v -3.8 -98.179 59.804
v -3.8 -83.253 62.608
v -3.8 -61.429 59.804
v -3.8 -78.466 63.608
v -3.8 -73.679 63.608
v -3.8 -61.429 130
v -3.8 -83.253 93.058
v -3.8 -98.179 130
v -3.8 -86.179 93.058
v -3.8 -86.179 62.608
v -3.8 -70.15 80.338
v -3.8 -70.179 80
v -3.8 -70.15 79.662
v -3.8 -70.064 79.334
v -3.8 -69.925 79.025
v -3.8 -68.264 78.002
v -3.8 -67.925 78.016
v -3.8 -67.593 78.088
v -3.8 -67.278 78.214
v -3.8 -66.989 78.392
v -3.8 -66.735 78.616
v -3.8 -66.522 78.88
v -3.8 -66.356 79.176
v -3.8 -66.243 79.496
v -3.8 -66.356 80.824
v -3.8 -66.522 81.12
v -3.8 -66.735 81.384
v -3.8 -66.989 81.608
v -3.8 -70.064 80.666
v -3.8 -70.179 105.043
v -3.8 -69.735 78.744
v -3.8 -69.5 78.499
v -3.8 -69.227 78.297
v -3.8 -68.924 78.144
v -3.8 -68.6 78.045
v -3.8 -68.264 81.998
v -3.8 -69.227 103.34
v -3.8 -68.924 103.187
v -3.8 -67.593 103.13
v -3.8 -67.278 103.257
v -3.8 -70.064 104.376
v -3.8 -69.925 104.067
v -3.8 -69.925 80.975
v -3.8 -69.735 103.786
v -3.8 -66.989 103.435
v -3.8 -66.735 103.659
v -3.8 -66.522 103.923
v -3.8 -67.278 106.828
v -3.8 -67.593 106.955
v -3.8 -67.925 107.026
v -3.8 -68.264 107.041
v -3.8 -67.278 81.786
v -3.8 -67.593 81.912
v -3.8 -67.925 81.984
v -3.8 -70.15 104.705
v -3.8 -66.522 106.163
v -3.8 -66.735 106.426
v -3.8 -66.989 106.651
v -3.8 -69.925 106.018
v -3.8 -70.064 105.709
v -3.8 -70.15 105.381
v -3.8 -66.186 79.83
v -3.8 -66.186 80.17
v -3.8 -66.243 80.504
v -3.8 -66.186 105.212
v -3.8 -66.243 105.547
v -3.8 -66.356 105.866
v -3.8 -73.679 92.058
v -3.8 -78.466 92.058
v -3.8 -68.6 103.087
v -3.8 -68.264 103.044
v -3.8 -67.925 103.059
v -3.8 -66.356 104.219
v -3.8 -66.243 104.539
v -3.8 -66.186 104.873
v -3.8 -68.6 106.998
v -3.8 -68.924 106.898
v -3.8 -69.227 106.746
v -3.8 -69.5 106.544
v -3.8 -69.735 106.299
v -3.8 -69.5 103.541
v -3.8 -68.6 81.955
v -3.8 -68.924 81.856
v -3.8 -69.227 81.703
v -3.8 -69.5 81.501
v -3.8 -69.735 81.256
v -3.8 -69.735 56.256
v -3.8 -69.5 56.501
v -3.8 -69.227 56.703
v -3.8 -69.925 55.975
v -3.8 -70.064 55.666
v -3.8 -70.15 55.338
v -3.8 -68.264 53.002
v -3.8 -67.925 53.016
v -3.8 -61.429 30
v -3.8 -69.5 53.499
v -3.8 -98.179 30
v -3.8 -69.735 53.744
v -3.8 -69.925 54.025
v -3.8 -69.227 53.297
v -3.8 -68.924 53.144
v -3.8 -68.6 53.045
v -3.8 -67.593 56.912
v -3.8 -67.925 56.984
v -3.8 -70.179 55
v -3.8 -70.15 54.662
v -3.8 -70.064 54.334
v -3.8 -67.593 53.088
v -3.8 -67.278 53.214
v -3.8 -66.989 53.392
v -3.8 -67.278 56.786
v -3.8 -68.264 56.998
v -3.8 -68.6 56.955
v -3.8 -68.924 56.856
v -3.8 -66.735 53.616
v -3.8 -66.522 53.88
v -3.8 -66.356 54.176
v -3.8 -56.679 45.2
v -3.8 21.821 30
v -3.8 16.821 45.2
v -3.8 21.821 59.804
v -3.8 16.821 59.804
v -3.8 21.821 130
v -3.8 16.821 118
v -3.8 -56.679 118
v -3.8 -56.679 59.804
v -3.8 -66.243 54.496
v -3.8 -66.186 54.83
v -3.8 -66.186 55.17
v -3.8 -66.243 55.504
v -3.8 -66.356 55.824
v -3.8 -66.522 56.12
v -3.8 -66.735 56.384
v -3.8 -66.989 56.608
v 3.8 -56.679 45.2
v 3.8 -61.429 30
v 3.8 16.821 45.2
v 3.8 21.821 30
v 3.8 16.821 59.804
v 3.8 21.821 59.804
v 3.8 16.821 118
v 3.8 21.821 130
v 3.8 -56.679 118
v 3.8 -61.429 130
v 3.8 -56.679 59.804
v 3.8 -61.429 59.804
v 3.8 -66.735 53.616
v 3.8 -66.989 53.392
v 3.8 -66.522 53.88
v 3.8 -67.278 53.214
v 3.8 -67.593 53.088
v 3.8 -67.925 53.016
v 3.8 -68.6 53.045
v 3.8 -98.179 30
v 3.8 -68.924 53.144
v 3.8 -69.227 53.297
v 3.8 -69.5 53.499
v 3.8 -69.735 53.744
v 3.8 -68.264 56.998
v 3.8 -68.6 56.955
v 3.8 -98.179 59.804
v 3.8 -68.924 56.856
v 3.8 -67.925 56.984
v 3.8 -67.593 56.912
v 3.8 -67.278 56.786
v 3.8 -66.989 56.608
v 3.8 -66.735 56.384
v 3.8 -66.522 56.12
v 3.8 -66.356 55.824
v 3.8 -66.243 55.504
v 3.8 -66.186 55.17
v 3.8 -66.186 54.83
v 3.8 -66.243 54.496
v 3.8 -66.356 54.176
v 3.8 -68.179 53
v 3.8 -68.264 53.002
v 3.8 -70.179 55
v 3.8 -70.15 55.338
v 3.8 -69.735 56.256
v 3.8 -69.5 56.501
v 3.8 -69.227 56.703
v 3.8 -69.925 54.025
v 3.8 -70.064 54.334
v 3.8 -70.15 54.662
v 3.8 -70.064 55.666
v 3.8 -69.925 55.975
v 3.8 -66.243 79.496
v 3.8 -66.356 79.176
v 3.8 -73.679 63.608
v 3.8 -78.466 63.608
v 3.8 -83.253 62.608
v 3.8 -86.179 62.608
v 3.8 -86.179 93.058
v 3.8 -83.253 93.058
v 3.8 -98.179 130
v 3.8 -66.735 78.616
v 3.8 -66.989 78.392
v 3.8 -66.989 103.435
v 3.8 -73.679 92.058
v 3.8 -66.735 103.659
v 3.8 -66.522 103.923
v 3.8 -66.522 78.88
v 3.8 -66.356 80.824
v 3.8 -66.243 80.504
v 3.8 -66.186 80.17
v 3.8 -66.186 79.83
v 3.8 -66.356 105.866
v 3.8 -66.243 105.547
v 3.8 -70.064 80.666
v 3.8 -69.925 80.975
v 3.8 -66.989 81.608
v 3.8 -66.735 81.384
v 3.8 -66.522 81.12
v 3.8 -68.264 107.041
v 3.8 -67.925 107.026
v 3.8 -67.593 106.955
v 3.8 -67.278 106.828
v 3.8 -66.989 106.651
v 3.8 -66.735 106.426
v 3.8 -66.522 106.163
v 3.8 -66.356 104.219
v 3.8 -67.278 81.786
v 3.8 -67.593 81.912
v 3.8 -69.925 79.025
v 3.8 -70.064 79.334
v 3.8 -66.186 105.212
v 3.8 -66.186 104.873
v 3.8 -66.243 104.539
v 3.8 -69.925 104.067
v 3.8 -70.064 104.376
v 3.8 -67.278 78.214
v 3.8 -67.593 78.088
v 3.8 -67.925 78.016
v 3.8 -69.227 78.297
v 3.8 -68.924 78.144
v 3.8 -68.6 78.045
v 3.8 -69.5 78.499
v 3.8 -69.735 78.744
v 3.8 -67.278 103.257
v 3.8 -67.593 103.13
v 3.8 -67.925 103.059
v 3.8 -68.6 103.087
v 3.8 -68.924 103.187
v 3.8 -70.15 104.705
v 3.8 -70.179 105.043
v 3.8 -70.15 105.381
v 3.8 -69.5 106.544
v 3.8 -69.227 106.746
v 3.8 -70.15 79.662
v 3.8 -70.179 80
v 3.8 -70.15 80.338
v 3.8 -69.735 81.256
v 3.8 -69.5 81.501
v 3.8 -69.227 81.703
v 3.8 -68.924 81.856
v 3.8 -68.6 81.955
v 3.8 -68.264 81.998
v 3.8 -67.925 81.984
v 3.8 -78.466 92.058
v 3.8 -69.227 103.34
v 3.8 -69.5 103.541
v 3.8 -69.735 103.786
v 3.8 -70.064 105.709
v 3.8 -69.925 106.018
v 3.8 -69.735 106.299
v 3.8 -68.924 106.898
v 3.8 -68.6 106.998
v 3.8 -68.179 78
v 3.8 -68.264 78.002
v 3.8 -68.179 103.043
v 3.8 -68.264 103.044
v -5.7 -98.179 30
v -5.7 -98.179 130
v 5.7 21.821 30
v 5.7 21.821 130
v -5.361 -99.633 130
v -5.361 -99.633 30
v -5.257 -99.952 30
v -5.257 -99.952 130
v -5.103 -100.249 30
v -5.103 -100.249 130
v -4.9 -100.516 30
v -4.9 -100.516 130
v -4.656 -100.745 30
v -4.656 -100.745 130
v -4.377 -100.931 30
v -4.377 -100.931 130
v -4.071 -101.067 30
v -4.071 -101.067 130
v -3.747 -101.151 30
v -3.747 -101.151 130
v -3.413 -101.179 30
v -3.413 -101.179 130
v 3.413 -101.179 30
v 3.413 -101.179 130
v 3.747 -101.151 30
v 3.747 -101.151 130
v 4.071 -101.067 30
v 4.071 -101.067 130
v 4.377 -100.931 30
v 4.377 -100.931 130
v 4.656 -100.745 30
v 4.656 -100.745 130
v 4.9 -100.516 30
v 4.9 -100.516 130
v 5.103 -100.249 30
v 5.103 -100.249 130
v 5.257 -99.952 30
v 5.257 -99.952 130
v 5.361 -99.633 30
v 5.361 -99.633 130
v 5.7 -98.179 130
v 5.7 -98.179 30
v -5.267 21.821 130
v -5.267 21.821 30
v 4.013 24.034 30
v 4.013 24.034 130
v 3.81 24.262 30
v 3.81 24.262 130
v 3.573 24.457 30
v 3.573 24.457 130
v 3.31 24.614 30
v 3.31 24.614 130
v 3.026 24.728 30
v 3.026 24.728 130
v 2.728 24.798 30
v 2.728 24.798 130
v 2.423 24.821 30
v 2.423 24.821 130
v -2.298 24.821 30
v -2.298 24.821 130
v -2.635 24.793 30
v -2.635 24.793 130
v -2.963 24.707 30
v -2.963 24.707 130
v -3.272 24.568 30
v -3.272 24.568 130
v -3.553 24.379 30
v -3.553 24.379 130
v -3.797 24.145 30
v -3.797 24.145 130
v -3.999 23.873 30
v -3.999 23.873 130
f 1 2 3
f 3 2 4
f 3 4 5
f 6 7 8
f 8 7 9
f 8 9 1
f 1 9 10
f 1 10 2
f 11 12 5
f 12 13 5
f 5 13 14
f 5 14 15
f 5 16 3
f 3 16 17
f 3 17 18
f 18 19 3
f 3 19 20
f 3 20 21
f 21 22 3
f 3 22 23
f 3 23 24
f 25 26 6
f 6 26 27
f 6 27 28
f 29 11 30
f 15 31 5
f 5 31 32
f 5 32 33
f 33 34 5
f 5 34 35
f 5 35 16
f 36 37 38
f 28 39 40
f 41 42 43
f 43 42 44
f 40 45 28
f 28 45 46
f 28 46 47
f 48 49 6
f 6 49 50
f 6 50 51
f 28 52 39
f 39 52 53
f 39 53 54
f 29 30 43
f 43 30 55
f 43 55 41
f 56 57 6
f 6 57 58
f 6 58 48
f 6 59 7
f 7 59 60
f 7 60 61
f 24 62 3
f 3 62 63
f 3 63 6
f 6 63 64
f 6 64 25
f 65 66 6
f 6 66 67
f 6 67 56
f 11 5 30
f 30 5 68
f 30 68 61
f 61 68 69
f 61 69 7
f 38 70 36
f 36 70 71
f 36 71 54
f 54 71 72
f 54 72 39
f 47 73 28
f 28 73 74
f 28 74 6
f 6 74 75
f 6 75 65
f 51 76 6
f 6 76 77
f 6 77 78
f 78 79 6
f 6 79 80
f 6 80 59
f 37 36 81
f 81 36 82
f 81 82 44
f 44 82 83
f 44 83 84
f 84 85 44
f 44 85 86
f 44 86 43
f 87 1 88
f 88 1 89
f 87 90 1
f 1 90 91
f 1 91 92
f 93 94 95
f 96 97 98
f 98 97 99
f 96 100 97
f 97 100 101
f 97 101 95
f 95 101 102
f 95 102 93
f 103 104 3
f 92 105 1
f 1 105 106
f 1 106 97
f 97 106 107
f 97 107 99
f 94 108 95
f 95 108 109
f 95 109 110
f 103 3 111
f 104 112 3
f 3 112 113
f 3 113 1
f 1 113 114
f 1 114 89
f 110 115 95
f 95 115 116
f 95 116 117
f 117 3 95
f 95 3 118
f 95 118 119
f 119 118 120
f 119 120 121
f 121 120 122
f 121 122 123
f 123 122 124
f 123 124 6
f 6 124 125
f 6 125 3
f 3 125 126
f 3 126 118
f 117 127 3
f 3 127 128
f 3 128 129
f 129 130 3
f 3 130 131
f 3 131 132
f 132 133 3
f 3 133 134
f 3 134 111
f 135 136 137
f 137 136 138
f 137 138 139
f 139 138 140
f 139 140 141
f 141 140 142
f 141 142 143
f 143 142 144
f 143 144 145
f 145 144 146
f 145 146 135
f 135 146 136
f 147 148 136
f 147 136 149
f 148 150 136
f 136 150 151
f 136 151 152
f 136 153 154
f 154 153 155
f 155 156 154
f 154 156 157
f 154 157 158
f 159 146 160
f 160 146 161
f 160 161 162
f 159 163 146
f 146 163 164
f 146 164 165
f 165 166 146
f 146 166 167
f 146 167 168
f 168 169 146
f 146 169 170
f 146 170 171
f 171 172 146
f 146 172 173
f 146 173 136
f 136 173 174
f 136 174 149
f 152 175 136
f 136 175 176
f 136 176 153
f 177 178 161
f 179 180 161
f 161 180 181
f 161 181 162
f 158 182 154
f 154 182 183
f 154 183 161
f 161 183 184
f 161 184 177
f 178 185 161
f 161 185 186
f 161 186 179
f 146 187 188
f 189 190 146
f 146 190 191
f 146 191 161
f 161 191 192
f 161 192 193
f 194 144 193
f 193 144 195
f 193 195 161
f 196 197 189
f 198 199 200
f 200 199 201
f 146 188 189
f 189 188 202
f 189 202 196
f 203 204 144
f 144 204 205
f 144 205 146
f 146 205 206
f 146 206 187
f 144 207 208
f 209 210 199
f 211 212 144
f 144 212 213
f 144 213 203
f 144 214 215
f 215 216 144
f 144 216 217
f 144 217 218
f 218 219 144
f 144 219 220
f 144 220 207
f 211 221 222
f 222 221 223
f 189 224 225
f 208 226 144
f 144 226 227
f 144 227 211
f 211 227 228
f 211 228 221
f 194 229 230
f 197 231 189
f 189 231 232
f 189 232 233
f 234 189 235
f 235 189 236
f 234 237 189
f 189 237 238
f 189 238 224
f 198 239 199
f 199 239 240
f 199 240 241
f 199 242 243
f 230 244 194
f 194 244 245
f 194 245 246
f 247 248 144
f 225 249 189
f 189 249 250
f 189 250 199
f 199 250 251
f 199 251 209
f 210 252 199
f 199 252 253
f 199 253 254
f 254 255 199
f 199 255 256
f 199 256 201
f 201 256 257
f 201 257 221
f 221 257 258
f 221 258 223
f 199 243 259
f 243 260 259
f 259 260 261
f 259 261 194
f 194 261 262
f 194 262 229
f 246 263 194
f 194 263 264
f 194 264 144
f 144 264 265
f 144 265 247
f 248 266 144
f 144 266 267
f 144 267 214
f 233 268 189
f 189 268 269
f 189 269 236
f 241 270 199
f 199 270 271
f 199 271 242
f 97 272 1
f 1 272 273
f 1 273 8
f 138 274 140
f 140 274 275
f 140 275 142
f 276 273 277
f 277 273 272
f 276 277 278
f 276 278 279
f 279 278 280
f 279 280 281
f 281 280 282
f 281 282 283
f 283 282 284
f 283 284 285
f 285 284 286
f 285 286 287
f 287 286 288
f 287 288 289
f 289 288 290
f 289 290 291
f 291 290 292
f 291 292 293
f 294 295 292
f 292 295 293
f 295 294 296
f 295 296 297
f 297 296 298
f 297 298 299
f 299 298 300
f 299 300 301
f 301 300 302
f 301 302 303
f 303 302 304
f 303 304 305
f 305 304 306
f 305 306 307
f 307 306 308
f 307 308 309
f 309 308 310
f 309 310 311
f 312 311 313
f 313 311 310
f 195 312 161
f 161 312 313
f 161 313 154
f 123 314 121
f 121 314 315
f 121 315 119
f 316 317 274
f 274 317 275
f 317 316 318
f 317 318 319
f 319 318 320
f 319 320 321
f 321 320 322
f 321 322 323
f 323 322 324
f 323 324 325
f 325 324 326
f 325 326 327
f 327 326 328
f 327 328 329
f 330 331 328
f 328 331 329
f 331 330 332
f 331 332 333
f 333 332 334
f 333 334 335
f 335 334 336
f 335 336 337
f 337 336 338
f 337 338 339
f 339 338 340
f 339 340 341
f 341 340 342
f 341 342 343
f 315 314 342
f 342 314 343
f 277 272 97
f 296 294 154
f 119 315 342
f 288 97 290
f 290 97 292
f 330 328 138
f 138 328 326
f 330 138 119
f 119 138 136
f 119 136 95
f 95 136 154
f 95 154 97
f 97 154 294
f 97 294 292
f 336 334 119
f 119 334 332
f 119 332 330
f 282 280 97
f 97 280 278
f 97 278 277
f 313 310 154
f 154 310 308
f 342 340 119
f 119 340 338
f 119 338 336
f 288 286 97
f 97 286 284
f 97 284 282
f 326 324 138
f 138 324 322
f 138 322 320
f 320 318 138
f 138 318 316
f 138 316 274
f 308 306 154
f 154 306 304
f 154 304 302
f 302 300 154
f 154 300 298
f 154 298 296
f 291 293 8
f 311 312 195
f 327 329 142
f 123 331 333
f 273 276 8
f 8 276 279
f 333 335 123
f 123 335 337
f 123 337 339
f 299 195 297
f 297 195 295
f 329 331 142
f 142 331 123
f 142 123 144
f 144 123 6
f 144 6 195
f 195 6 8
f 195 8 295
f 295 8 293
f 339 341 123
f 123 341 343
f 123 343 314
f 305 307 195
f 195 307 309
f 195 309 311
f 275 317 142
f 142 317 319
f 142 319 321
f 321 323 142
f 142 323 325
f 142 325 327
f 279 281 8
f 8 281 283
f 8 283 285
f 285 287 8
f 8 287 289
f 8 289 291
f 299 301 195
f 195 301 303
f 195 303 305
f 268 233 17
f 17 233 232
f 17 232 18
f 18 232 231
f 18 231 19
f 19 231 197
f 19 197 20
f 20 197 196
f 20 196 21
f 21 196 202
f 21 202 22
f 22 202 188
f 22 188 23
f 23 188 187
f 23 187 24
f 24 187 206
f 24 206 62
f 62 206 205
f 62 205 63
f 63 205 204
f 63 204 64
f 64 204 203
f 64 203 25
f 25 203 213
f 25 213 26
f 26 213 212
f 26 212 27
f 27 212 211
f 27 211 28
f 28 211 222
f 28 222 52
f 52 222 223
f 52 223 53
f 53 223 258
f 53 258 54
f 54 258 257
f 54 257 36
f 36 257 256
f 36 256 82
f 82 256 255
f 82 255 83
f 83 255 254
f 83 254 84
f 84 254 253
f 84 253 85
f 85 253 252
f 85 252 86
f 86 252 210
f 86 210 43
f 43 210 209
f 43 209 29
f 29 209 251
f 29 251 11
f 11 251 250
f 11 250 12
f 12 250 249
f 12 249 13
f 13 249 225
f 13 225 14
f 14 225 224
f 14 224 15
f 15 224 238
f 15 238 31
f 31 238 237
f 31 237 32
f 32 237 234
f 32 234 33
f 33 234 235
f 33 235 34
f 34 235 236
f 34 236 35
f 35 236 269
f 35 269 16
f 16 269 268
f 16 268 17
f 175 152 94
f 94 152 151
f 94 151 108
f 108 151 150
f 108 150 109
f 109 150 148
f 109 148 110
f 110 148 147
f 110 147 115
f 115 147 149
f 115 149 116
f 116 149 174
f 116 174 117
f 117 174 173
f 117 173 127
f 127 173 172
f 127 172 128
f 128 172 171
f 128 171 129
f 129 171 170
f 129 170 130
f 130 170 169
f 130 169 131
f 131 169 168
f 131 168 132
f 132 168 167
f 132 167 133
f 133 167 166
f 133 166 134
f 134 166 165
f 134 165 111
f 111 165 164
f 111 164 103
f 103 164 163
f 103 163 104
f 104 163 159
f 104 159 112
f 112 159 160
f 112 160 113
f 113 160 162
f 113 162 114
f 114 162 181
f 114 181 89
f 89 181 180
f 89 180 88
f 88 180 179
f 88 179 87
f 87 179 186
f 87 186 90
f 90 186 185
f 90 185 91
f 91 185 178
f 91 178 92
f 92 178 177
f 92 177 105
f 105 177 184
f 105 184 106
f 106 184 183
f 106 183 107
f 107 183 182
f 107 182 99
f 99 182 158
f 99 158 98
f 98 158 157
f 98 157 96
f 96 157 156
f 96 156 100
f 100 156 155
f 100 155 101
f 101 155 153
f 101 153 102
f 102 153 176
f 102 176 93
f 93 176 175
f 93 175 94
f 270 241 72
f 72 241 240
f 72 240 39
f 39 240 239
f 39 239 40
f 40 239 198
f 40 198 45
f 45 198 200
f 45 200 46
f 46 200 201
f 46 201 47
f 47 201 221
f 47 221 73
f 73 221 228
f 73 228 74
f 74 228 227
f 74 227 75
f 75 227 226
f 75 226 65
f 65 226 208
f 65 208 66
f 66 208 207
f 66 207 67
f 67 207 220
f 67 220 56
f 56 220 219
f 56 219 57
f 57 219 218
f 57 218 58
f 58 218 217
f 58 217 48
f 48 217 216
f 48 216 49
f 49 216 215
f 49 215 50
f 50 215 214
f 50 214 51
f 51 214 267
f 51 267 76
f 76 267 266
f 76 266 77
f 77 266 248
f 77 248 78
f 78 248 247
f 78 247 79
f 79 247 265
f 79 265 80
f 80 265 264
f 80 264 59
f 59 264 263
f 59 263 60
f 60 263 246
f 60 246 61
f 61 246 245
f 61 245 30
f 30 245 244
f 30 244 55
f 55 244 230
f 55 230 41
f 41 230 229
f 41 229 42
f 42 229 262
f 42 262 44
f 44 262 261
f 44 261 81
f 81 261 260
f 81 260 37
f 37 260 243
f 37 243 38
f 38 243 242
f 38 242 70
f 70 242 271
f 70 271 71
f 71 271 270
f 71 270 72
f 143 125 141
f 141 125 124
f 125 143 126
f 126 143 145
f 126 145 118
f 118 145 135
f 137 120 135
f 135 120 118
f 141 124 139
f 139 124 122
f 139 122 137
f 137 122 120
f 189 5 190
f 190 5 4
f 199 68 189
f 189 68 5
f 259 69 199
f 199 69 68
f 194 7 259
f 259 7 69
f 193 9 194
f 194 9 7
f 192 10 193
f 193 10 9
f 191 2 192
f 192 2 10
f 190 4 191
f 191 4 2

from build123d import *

# Parameters (mm, degrees)
RESSALTO_EXTRUS_O1_DEPTH   = 160
ESBO_O2_W                  = 7.6
ESBO_O2_H                  = 120
CORTE_EXTRUS_O1_DEPTH      = 30
CORTE_EXTRUS_O2_DEPTH      = 30
F_3DSKETCH3_R              = 2
CORTE_EXTRUS_O3_DEPTH      = 70
ESBO_O3_W                  = 45.015344868
ESBO_O3_H                  = 129.478543367
ESBO_O3_W_2                = 37.192593828
CORTE_EXTRUS_O4_DEPTH      = 41
CORTE_EXTRUS_O4_DEPTH_BACK = 22
ESBO_O4_W                  = 72.8
ESBO_O4_H                  = 73.5
CORTE_EXTRUS_O5_DEPTH      = 34
CORTE_EXTRUS_O5_DEPTH_BACK = 36


with BuildPart() as part:
    # Esboço1 → Ressalto-extrusão1 (new body)
    with BuildSketch(Plane.XY):
        with BuildLine():
            Line((-3.8, 21.821375341), (-3.8, -98.178624659))
            Line((-3.8, -98.178624659), (-5.7, -98.178624659))
            Line((-5.7, -98.178624659), (-5.360626179, -99.63308389))
            ThreePointArc((-5.360626179, -99.63308389), (-4.656141559, -100.745296045), (-3.41294376, -101.178624659))
            Line((-3.41294376, -101.178624659), (3.41294376, -101.178624659))
            ThreePointArc((3.41294376, -101.178624659), (4.656141559, -100.745296045), (5.360626179, -99.63308389))
            Line((5.360626179, -99.63308389), (5.7, -98.178624659))
            Line((5.7, -98.178624659), (3.8, -98.178624659))
            Line((3.8, -98.178624659), (3.8, 21.821375341))
            Line((3.8, 21.821375341), (5.7, 21.821375341))
            Line((5.7, 21.821375341), (4.013268169, 24.033911877))
            ThreePointArc((4.013268169, 24.033911877), (3.310139149, 24.613730366), (2.422747768, 24.821375341))
            Line((2.422747768, 24.821375341), (-2.297792791, 24.821375341))
            ThreePointArc((-2.297792791, 24.821375341), (-3.27177376, 24.568189891), (-3.999156919, 23.872736414))
            Line((-3.999156919, 23.872736414), (-5.266799243, 21.821375341))
            Line((-5.266799243, 21.821375341), (-3.8, 21.821375341))
        make_face()
    extrude(amount=RESSALTO_EXTRUS_O1_DEPTH)

    # Esboço2 → Corte-extrusão1 (cut)
    with BuildSketch(Plane.XY):
        with Locations((0, -38.178624659)):
            Rectangle(ESBO_O2_W, ESBO_O2_H)
    extrude(amount=CORTE_EXTRUS_O1_DEPTH, mode=Mode.SUBTRACT)

    # 3DSketch2 → Corte-extrusão2 (cut)
    with BuildSketch(Plane(origin=(-3.8, 21.821375341, 160), x_dir=(0.0632066956560733, -0.9980004577274705, 0), z_dir=(0, 0, -1))):
        Polygon((0, 0), (0.480370887, -7.584803479), (120.240425814, 0), (119.760054927, 7.584803479), align=None)
    extrude(amount=CORTE_EXTRUS_O2_DEPTH, mode=Mode.SUBTRACT)

    # 3DSketch3 → Corte-extrusão3 (cut)
    with BuildSketch(Plane(origin=(3.8, -38.178624659, 80), x_dir=(0, 0.7676852805184269, 0.6408270516101394), z_dir=(1, 0, 0))):
        with Locations(Location((0, 0, 0), (0, 0, 140.146481665))):
            Circle(F_3DSKETCH3_R)
        with Locations(Location((23.030558416, -19.224811548, 0), (0, 0, 140.146481665))):
            Circle(F_3DSKETCH3_R)
        with Locations(Location((-23.030558416, 19.224811548, 0), (0, 0, 140.146481665))):
            Circle(F_3DSKETCH3_R)
        with Locations(Location((-39.051234706, 0.032679535, 0), (0, 0, 140.146481665))):
            Circle(F_3DSKETCH3_R)
        with Locations(Location((-16.02067629, -19.192132013, 0), (0, 0, 140.146481665))):
            Circle(F_3DSKETCH3_R)
        with Locations(Location((7.009882125, -38.416943561, 0), (0, 0, 140.146481665))):
            Circle(F_3DSKETCH3_R)
        with Locations(Location((-6.982602808, 38.449623097, 0), (0, 0, 140.146481665))):
            Circle(F_3DSKETCH3_R)
        with Locations(Location((16.047955607, 19.224811548, 0), (0, 0, 140.146481665))):
            Circle(F_3DSKETCH3_R)
        with Locations(Location((39.078514023, 0, 0), (0, 0, 140.146481665))):
            Circle(F_3DSKETCH3_R)
    extrude(amount=-CORTE_EXTRUS_O3_DEPTH, mode=Mode.SUBTRACT)

    # Esboço3 → Corte-extrusão4 (cut, two sides)
    with BuildSketch(Plane(origin=(0, 0, 0), x_dir=(0, 0, -1), z_dir=(1, 0, 0))) as corte_extrus_o4_sk:
        with Locations((-7.492327566, -39.917896343)):
            Rectangle(ESBO_O3_W, ESBO_O3_H)
        with Locations((-148.596296914, -39.917896343)):
            Rectangle(ESBO_O3_W_2, ESBO_O3_H)
    extrude(amount=CORTE_EXTRUS_O4_DEPTH, mode=Mode.SUBTRACT)
    extrude(corte_extrus_o4_sk.sketch, amount=-CORTE_EXTRUS_O4_DEPTH_BACK, mode=Mode.SUBTRACT)

    # Esboço4 → Corte-extrusão5 (cut, two sides)
    with BuildSketch(Plane(origin=(0, 0, 0), x_dir=(0, 0, -1), z_dir=(1, 0, 0))) as corte_extrus_o5_sk:
        with Locations((-81.6, -19.928624659)):
            Rectangle(ESBO_O4_W, ESBO_O4_H)
        Polygon((-93.057510279, -86.178624659), (-62.607510279, -86.178624659), (-62.607510279, -83.253419483), (-63.607510279, -78.466022071), (-63.607510279, -73.678624659), (-92.057510279, -73.678624659), (-92.057510279, -78.466022071), (-93.057510279, -83.253419483), align=None)
    extrude(amount=CORTE_EXTRUS_O5_DEPTH, mode=Mode.SUBTRACT)
    extrude(corte_extrus_o5_sk.sketch, amount=-CORTE_EXTRUS_O5_DEPTH_BACK, mode=Mode.SUBTRACT)


solid = part.part
